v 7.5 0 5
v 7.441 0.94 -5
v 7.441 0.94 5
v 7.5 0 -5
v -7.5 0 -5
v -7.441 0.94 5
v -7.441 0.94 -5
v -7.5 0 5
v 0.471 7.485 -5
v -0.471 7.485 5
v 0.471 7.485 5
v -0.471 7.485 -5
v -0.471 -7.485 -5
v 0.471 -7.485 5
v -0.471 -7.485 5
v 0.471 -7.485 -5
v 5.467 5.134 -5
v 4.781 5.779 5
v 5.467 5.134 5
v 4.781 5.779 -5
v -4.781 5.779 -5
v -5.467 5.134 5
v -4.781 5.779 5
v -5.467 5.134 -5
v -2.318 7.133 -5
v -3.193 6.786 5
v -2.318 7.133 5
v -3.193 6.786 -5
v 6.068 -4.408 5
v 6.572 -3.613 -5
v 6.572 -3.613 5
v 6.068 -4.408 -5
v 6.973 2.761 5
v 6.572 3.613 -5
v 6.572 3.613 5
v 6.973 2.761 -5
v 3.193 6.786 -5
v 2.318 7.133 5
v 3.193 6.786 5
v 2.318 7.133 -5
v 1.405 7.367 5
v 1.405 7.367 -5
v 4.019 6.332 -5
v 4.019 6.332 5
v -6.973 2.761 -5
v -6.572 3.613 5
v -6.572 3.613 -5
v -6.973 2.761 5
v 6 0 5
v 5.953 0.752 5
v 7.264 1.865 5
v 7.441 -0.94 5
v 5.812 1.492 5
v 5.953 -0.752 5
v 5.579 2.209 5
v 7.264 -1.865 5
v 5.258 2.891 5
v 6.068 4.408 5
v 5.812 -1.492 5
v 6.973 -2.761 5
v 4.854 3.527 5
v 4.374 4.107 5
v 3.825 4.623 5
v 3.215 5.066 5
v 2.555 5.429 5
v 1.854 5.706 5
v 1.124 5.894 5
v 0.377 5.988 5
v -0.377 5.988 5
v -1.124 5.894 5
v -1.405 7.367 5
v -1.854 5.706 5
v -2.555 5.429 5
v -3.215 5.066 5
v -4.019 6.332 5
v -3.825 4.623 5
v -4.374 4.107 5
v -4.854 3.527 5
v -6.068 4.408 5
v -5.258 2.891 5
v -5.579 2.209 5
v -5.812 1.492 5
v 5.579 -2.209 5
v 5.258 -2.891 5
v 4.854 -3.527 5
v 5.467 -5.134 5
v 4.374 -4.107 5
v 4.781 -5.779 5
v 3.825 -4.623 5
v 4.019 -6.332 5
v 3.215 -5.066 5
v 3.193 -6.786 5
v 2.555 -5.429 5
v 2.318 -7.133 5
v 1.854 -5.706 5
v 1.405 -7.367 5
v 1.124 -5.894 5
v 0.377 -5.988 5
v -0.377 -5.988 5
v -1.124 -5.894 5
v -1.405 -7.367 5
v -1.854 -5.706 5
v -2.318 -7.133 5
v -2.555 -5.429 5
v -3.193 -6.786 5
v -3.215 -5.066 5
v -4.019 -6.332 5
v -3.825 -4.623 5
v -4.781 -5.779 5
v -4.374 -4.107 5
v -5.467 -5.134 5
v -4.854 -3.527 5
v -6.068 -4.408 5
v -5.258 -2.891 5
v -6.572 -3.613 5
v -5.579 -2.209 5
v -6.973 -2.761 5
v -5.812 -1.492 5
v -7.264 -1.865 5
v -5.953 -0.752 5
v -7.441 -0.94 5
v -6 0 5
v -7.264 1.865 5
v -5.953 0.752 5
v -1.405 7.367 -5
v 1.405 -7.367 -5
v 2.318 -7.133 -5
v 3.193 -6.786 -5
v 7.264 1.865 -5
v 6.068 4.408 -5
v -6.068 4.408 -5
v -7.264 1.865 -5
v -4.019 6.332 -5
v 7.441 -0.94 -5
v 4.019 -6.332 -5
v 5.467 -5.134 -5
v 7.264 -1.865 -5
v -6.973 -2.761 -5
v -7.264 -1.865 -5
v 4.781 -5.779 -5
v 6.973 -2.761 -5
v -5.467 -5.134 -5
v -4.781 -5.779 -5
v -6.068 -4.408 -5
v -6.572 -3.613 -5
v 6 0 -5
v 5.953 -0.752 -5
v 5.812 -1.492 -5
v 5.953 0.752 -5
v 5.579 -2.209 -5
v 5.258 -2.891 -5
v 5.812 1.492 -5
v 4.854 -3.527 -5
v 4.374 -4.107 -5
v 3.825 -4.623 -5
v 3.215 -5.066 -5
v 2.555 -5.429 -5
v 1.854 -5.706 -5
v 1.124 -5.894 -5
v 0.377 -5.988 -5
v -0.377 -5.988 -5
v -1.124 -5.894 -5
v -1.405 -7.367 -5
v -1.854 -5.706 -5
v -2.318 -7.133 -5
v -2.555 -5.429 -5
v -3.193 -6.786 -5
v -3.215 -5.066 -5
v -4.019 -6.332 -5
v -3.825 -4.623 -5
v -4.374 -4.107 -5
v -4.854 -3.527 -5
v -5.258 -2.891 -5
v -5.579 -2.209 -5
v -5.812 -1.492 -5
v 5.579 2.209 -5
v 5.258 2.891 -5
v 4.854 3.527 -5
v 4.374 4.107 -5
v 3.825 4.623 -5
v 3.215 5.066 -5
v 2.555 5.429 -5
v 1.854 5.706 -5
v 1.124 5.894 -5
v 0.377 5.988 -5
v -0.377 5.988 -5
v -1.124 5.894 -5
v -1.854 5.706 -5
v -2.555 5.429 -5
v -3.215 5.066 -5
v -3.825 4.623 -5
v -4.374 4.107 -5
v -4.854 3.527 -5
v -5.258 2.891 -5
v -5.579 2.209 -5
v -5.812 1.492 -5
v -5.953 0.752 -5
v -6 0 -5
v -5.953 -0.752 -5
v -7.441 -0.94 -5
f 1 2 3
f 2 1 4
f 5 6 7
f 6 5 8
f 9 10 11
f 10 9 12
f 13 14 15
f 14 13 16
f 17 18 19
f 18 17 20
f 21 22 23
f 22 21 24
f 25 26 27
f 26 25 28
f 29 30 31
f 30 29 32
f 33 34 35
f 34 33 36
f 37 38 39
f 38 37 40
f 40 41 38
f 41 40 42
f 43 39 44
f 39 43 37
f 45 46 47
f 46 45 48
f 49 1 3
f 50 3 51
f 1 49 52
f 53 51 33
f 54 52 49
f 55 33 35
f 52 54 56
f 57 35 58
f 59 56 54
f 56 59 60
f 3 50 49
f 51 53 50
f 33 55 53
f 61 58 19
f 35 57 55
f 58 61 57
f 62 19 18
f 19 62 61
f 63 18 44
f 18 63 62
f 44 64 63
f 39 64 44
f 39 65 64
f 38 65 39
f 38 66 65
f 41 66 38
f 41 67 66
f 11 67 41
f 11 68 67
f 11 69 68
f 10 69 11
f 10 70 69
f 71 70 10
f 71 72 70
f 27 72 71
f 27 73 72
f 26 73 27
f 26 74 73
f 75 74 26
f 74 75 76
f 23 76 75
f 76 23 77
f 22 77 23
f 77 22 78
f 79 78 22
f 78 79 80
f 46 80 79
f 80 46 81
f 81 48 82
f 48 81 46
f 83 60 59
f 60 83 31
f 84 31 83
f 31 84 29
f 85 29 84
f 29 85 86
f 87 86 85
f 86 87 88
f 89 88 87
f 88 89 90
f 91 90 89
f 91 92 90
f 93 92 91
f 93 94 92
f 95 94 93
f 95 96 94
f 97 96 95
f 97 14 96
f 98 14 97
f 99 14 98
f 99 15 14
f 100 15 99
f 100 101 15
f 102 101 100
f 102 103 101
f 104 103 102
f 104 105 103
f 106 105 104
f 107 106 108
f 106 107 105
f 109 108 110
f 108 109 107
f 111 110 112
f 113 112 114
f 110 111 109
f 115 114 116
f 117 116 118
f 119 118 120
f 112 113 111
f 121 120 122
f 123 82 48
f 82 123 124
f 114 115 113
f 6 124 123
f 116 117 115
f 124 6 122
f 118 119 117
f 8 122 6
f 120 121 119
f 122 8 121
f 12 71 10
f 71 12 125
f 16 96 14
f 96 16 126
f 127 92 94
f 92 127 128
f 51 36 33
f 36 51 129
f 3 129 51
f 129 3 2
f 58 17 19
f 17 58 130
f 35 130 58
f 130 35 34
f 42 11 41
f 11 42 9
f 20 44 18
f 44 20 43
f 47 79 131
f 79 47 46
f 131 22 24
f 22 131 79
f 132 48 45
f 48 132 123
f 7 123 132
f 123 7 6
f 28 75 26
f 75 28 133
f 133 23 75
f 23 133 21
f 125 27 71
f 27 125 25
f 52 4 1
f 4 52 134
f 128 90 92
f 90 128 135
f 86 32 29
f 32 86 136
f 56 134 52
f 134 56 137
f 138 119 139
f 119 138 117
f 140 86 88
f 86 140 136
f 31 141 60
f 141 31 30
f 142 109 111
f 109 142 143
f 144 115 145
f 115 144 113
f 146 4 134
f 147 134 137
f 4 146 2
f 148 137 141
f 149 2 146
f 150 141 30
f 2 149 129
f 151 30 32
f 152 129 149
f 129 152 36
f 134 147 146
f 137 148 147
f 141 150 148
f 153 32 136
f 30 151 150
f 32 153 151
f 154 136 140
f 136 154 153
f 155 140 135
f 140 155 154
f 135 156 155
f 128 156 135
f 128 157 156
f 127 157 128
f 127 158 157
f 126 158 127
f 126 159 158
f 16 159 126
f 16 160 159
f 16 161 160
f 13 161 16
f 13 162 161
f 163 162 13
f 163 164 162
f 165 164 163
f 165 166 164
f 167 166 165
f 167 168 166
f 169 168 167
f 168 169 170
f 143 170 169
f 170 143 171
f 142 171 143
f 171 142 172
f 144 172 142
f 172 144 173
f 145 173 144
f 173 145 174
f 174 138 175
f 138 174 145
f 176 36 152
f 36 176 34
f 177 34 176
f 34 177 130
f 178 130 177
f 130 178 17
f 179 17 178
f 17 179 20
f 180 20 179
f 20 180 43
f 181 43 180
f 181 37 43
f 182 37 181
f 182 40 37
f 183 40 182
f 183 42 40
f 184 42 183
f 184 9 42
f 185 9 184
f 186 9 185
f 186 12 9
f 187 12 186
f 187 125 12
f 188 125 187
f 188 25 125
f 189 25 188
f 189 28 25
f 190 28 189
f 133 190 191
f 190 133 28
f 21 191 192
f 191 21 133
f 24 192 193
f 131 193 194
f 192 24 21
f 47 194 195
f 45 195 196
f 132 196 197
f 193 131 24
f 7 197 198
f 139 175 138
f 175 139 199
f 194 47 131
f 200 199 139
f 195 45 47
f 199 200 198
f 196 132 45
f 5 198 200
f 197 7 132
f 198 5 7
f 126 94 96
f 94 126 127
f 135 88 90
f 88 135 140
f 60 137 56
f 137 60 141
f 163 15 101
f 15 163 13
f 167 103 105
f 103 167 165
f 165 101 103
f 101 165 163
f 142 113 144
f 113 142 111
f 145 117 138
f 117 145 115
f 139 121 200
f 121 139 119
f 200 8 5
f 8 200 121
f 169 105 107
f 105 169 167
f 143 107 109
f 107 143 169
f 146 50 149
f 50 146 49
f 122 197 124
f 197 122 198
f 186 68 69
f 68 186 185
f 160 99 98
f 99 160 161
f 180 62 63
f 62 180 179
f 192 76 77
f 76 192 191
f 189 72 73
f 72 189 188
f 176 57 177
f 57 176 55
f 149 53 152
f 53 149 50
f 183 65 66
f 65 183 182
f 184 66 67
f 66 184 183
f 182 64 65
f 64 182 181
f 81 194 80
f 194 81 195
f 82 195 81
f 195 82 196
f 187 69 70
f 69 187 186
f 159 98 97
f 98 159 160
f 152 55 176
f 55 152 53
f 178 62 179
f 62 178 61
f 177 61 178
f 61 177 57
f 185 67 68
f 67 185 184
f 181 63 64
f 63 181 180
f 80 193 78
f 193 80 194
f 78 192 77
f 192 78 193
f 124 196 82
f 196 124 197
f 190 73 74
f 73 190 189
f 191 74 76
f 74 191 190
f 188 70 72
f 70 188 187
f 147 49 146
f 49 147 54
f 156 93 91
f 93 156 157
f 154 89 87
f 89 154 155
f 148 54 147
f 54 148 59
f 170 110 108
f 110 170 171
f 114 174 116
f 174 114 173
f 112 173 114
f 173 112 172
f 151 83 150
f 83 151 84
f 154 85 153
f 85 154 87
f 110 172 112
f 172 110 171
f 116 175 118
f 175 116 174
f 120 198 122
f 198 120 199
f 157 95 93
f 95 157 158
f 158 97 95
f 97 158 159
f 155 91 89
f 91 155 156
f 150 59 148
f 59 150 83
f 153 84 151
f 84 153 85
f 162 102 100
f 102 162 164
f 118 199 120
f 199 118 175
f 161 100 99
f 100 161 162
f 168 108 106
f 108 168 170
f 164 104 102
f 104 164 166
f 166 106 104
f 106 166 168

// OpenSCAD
$fn = 50;


difference() {
	union() {
		translate(v = [0, 0, -5.0000000000]) {
			cylinder(h = 10, r = 7.5000000000);
		}
	}
	union() {
		translate(v = [0, 0, -100.0000000000]) {
			cylinder(h = 200, r = 6);
		}
	}
}
